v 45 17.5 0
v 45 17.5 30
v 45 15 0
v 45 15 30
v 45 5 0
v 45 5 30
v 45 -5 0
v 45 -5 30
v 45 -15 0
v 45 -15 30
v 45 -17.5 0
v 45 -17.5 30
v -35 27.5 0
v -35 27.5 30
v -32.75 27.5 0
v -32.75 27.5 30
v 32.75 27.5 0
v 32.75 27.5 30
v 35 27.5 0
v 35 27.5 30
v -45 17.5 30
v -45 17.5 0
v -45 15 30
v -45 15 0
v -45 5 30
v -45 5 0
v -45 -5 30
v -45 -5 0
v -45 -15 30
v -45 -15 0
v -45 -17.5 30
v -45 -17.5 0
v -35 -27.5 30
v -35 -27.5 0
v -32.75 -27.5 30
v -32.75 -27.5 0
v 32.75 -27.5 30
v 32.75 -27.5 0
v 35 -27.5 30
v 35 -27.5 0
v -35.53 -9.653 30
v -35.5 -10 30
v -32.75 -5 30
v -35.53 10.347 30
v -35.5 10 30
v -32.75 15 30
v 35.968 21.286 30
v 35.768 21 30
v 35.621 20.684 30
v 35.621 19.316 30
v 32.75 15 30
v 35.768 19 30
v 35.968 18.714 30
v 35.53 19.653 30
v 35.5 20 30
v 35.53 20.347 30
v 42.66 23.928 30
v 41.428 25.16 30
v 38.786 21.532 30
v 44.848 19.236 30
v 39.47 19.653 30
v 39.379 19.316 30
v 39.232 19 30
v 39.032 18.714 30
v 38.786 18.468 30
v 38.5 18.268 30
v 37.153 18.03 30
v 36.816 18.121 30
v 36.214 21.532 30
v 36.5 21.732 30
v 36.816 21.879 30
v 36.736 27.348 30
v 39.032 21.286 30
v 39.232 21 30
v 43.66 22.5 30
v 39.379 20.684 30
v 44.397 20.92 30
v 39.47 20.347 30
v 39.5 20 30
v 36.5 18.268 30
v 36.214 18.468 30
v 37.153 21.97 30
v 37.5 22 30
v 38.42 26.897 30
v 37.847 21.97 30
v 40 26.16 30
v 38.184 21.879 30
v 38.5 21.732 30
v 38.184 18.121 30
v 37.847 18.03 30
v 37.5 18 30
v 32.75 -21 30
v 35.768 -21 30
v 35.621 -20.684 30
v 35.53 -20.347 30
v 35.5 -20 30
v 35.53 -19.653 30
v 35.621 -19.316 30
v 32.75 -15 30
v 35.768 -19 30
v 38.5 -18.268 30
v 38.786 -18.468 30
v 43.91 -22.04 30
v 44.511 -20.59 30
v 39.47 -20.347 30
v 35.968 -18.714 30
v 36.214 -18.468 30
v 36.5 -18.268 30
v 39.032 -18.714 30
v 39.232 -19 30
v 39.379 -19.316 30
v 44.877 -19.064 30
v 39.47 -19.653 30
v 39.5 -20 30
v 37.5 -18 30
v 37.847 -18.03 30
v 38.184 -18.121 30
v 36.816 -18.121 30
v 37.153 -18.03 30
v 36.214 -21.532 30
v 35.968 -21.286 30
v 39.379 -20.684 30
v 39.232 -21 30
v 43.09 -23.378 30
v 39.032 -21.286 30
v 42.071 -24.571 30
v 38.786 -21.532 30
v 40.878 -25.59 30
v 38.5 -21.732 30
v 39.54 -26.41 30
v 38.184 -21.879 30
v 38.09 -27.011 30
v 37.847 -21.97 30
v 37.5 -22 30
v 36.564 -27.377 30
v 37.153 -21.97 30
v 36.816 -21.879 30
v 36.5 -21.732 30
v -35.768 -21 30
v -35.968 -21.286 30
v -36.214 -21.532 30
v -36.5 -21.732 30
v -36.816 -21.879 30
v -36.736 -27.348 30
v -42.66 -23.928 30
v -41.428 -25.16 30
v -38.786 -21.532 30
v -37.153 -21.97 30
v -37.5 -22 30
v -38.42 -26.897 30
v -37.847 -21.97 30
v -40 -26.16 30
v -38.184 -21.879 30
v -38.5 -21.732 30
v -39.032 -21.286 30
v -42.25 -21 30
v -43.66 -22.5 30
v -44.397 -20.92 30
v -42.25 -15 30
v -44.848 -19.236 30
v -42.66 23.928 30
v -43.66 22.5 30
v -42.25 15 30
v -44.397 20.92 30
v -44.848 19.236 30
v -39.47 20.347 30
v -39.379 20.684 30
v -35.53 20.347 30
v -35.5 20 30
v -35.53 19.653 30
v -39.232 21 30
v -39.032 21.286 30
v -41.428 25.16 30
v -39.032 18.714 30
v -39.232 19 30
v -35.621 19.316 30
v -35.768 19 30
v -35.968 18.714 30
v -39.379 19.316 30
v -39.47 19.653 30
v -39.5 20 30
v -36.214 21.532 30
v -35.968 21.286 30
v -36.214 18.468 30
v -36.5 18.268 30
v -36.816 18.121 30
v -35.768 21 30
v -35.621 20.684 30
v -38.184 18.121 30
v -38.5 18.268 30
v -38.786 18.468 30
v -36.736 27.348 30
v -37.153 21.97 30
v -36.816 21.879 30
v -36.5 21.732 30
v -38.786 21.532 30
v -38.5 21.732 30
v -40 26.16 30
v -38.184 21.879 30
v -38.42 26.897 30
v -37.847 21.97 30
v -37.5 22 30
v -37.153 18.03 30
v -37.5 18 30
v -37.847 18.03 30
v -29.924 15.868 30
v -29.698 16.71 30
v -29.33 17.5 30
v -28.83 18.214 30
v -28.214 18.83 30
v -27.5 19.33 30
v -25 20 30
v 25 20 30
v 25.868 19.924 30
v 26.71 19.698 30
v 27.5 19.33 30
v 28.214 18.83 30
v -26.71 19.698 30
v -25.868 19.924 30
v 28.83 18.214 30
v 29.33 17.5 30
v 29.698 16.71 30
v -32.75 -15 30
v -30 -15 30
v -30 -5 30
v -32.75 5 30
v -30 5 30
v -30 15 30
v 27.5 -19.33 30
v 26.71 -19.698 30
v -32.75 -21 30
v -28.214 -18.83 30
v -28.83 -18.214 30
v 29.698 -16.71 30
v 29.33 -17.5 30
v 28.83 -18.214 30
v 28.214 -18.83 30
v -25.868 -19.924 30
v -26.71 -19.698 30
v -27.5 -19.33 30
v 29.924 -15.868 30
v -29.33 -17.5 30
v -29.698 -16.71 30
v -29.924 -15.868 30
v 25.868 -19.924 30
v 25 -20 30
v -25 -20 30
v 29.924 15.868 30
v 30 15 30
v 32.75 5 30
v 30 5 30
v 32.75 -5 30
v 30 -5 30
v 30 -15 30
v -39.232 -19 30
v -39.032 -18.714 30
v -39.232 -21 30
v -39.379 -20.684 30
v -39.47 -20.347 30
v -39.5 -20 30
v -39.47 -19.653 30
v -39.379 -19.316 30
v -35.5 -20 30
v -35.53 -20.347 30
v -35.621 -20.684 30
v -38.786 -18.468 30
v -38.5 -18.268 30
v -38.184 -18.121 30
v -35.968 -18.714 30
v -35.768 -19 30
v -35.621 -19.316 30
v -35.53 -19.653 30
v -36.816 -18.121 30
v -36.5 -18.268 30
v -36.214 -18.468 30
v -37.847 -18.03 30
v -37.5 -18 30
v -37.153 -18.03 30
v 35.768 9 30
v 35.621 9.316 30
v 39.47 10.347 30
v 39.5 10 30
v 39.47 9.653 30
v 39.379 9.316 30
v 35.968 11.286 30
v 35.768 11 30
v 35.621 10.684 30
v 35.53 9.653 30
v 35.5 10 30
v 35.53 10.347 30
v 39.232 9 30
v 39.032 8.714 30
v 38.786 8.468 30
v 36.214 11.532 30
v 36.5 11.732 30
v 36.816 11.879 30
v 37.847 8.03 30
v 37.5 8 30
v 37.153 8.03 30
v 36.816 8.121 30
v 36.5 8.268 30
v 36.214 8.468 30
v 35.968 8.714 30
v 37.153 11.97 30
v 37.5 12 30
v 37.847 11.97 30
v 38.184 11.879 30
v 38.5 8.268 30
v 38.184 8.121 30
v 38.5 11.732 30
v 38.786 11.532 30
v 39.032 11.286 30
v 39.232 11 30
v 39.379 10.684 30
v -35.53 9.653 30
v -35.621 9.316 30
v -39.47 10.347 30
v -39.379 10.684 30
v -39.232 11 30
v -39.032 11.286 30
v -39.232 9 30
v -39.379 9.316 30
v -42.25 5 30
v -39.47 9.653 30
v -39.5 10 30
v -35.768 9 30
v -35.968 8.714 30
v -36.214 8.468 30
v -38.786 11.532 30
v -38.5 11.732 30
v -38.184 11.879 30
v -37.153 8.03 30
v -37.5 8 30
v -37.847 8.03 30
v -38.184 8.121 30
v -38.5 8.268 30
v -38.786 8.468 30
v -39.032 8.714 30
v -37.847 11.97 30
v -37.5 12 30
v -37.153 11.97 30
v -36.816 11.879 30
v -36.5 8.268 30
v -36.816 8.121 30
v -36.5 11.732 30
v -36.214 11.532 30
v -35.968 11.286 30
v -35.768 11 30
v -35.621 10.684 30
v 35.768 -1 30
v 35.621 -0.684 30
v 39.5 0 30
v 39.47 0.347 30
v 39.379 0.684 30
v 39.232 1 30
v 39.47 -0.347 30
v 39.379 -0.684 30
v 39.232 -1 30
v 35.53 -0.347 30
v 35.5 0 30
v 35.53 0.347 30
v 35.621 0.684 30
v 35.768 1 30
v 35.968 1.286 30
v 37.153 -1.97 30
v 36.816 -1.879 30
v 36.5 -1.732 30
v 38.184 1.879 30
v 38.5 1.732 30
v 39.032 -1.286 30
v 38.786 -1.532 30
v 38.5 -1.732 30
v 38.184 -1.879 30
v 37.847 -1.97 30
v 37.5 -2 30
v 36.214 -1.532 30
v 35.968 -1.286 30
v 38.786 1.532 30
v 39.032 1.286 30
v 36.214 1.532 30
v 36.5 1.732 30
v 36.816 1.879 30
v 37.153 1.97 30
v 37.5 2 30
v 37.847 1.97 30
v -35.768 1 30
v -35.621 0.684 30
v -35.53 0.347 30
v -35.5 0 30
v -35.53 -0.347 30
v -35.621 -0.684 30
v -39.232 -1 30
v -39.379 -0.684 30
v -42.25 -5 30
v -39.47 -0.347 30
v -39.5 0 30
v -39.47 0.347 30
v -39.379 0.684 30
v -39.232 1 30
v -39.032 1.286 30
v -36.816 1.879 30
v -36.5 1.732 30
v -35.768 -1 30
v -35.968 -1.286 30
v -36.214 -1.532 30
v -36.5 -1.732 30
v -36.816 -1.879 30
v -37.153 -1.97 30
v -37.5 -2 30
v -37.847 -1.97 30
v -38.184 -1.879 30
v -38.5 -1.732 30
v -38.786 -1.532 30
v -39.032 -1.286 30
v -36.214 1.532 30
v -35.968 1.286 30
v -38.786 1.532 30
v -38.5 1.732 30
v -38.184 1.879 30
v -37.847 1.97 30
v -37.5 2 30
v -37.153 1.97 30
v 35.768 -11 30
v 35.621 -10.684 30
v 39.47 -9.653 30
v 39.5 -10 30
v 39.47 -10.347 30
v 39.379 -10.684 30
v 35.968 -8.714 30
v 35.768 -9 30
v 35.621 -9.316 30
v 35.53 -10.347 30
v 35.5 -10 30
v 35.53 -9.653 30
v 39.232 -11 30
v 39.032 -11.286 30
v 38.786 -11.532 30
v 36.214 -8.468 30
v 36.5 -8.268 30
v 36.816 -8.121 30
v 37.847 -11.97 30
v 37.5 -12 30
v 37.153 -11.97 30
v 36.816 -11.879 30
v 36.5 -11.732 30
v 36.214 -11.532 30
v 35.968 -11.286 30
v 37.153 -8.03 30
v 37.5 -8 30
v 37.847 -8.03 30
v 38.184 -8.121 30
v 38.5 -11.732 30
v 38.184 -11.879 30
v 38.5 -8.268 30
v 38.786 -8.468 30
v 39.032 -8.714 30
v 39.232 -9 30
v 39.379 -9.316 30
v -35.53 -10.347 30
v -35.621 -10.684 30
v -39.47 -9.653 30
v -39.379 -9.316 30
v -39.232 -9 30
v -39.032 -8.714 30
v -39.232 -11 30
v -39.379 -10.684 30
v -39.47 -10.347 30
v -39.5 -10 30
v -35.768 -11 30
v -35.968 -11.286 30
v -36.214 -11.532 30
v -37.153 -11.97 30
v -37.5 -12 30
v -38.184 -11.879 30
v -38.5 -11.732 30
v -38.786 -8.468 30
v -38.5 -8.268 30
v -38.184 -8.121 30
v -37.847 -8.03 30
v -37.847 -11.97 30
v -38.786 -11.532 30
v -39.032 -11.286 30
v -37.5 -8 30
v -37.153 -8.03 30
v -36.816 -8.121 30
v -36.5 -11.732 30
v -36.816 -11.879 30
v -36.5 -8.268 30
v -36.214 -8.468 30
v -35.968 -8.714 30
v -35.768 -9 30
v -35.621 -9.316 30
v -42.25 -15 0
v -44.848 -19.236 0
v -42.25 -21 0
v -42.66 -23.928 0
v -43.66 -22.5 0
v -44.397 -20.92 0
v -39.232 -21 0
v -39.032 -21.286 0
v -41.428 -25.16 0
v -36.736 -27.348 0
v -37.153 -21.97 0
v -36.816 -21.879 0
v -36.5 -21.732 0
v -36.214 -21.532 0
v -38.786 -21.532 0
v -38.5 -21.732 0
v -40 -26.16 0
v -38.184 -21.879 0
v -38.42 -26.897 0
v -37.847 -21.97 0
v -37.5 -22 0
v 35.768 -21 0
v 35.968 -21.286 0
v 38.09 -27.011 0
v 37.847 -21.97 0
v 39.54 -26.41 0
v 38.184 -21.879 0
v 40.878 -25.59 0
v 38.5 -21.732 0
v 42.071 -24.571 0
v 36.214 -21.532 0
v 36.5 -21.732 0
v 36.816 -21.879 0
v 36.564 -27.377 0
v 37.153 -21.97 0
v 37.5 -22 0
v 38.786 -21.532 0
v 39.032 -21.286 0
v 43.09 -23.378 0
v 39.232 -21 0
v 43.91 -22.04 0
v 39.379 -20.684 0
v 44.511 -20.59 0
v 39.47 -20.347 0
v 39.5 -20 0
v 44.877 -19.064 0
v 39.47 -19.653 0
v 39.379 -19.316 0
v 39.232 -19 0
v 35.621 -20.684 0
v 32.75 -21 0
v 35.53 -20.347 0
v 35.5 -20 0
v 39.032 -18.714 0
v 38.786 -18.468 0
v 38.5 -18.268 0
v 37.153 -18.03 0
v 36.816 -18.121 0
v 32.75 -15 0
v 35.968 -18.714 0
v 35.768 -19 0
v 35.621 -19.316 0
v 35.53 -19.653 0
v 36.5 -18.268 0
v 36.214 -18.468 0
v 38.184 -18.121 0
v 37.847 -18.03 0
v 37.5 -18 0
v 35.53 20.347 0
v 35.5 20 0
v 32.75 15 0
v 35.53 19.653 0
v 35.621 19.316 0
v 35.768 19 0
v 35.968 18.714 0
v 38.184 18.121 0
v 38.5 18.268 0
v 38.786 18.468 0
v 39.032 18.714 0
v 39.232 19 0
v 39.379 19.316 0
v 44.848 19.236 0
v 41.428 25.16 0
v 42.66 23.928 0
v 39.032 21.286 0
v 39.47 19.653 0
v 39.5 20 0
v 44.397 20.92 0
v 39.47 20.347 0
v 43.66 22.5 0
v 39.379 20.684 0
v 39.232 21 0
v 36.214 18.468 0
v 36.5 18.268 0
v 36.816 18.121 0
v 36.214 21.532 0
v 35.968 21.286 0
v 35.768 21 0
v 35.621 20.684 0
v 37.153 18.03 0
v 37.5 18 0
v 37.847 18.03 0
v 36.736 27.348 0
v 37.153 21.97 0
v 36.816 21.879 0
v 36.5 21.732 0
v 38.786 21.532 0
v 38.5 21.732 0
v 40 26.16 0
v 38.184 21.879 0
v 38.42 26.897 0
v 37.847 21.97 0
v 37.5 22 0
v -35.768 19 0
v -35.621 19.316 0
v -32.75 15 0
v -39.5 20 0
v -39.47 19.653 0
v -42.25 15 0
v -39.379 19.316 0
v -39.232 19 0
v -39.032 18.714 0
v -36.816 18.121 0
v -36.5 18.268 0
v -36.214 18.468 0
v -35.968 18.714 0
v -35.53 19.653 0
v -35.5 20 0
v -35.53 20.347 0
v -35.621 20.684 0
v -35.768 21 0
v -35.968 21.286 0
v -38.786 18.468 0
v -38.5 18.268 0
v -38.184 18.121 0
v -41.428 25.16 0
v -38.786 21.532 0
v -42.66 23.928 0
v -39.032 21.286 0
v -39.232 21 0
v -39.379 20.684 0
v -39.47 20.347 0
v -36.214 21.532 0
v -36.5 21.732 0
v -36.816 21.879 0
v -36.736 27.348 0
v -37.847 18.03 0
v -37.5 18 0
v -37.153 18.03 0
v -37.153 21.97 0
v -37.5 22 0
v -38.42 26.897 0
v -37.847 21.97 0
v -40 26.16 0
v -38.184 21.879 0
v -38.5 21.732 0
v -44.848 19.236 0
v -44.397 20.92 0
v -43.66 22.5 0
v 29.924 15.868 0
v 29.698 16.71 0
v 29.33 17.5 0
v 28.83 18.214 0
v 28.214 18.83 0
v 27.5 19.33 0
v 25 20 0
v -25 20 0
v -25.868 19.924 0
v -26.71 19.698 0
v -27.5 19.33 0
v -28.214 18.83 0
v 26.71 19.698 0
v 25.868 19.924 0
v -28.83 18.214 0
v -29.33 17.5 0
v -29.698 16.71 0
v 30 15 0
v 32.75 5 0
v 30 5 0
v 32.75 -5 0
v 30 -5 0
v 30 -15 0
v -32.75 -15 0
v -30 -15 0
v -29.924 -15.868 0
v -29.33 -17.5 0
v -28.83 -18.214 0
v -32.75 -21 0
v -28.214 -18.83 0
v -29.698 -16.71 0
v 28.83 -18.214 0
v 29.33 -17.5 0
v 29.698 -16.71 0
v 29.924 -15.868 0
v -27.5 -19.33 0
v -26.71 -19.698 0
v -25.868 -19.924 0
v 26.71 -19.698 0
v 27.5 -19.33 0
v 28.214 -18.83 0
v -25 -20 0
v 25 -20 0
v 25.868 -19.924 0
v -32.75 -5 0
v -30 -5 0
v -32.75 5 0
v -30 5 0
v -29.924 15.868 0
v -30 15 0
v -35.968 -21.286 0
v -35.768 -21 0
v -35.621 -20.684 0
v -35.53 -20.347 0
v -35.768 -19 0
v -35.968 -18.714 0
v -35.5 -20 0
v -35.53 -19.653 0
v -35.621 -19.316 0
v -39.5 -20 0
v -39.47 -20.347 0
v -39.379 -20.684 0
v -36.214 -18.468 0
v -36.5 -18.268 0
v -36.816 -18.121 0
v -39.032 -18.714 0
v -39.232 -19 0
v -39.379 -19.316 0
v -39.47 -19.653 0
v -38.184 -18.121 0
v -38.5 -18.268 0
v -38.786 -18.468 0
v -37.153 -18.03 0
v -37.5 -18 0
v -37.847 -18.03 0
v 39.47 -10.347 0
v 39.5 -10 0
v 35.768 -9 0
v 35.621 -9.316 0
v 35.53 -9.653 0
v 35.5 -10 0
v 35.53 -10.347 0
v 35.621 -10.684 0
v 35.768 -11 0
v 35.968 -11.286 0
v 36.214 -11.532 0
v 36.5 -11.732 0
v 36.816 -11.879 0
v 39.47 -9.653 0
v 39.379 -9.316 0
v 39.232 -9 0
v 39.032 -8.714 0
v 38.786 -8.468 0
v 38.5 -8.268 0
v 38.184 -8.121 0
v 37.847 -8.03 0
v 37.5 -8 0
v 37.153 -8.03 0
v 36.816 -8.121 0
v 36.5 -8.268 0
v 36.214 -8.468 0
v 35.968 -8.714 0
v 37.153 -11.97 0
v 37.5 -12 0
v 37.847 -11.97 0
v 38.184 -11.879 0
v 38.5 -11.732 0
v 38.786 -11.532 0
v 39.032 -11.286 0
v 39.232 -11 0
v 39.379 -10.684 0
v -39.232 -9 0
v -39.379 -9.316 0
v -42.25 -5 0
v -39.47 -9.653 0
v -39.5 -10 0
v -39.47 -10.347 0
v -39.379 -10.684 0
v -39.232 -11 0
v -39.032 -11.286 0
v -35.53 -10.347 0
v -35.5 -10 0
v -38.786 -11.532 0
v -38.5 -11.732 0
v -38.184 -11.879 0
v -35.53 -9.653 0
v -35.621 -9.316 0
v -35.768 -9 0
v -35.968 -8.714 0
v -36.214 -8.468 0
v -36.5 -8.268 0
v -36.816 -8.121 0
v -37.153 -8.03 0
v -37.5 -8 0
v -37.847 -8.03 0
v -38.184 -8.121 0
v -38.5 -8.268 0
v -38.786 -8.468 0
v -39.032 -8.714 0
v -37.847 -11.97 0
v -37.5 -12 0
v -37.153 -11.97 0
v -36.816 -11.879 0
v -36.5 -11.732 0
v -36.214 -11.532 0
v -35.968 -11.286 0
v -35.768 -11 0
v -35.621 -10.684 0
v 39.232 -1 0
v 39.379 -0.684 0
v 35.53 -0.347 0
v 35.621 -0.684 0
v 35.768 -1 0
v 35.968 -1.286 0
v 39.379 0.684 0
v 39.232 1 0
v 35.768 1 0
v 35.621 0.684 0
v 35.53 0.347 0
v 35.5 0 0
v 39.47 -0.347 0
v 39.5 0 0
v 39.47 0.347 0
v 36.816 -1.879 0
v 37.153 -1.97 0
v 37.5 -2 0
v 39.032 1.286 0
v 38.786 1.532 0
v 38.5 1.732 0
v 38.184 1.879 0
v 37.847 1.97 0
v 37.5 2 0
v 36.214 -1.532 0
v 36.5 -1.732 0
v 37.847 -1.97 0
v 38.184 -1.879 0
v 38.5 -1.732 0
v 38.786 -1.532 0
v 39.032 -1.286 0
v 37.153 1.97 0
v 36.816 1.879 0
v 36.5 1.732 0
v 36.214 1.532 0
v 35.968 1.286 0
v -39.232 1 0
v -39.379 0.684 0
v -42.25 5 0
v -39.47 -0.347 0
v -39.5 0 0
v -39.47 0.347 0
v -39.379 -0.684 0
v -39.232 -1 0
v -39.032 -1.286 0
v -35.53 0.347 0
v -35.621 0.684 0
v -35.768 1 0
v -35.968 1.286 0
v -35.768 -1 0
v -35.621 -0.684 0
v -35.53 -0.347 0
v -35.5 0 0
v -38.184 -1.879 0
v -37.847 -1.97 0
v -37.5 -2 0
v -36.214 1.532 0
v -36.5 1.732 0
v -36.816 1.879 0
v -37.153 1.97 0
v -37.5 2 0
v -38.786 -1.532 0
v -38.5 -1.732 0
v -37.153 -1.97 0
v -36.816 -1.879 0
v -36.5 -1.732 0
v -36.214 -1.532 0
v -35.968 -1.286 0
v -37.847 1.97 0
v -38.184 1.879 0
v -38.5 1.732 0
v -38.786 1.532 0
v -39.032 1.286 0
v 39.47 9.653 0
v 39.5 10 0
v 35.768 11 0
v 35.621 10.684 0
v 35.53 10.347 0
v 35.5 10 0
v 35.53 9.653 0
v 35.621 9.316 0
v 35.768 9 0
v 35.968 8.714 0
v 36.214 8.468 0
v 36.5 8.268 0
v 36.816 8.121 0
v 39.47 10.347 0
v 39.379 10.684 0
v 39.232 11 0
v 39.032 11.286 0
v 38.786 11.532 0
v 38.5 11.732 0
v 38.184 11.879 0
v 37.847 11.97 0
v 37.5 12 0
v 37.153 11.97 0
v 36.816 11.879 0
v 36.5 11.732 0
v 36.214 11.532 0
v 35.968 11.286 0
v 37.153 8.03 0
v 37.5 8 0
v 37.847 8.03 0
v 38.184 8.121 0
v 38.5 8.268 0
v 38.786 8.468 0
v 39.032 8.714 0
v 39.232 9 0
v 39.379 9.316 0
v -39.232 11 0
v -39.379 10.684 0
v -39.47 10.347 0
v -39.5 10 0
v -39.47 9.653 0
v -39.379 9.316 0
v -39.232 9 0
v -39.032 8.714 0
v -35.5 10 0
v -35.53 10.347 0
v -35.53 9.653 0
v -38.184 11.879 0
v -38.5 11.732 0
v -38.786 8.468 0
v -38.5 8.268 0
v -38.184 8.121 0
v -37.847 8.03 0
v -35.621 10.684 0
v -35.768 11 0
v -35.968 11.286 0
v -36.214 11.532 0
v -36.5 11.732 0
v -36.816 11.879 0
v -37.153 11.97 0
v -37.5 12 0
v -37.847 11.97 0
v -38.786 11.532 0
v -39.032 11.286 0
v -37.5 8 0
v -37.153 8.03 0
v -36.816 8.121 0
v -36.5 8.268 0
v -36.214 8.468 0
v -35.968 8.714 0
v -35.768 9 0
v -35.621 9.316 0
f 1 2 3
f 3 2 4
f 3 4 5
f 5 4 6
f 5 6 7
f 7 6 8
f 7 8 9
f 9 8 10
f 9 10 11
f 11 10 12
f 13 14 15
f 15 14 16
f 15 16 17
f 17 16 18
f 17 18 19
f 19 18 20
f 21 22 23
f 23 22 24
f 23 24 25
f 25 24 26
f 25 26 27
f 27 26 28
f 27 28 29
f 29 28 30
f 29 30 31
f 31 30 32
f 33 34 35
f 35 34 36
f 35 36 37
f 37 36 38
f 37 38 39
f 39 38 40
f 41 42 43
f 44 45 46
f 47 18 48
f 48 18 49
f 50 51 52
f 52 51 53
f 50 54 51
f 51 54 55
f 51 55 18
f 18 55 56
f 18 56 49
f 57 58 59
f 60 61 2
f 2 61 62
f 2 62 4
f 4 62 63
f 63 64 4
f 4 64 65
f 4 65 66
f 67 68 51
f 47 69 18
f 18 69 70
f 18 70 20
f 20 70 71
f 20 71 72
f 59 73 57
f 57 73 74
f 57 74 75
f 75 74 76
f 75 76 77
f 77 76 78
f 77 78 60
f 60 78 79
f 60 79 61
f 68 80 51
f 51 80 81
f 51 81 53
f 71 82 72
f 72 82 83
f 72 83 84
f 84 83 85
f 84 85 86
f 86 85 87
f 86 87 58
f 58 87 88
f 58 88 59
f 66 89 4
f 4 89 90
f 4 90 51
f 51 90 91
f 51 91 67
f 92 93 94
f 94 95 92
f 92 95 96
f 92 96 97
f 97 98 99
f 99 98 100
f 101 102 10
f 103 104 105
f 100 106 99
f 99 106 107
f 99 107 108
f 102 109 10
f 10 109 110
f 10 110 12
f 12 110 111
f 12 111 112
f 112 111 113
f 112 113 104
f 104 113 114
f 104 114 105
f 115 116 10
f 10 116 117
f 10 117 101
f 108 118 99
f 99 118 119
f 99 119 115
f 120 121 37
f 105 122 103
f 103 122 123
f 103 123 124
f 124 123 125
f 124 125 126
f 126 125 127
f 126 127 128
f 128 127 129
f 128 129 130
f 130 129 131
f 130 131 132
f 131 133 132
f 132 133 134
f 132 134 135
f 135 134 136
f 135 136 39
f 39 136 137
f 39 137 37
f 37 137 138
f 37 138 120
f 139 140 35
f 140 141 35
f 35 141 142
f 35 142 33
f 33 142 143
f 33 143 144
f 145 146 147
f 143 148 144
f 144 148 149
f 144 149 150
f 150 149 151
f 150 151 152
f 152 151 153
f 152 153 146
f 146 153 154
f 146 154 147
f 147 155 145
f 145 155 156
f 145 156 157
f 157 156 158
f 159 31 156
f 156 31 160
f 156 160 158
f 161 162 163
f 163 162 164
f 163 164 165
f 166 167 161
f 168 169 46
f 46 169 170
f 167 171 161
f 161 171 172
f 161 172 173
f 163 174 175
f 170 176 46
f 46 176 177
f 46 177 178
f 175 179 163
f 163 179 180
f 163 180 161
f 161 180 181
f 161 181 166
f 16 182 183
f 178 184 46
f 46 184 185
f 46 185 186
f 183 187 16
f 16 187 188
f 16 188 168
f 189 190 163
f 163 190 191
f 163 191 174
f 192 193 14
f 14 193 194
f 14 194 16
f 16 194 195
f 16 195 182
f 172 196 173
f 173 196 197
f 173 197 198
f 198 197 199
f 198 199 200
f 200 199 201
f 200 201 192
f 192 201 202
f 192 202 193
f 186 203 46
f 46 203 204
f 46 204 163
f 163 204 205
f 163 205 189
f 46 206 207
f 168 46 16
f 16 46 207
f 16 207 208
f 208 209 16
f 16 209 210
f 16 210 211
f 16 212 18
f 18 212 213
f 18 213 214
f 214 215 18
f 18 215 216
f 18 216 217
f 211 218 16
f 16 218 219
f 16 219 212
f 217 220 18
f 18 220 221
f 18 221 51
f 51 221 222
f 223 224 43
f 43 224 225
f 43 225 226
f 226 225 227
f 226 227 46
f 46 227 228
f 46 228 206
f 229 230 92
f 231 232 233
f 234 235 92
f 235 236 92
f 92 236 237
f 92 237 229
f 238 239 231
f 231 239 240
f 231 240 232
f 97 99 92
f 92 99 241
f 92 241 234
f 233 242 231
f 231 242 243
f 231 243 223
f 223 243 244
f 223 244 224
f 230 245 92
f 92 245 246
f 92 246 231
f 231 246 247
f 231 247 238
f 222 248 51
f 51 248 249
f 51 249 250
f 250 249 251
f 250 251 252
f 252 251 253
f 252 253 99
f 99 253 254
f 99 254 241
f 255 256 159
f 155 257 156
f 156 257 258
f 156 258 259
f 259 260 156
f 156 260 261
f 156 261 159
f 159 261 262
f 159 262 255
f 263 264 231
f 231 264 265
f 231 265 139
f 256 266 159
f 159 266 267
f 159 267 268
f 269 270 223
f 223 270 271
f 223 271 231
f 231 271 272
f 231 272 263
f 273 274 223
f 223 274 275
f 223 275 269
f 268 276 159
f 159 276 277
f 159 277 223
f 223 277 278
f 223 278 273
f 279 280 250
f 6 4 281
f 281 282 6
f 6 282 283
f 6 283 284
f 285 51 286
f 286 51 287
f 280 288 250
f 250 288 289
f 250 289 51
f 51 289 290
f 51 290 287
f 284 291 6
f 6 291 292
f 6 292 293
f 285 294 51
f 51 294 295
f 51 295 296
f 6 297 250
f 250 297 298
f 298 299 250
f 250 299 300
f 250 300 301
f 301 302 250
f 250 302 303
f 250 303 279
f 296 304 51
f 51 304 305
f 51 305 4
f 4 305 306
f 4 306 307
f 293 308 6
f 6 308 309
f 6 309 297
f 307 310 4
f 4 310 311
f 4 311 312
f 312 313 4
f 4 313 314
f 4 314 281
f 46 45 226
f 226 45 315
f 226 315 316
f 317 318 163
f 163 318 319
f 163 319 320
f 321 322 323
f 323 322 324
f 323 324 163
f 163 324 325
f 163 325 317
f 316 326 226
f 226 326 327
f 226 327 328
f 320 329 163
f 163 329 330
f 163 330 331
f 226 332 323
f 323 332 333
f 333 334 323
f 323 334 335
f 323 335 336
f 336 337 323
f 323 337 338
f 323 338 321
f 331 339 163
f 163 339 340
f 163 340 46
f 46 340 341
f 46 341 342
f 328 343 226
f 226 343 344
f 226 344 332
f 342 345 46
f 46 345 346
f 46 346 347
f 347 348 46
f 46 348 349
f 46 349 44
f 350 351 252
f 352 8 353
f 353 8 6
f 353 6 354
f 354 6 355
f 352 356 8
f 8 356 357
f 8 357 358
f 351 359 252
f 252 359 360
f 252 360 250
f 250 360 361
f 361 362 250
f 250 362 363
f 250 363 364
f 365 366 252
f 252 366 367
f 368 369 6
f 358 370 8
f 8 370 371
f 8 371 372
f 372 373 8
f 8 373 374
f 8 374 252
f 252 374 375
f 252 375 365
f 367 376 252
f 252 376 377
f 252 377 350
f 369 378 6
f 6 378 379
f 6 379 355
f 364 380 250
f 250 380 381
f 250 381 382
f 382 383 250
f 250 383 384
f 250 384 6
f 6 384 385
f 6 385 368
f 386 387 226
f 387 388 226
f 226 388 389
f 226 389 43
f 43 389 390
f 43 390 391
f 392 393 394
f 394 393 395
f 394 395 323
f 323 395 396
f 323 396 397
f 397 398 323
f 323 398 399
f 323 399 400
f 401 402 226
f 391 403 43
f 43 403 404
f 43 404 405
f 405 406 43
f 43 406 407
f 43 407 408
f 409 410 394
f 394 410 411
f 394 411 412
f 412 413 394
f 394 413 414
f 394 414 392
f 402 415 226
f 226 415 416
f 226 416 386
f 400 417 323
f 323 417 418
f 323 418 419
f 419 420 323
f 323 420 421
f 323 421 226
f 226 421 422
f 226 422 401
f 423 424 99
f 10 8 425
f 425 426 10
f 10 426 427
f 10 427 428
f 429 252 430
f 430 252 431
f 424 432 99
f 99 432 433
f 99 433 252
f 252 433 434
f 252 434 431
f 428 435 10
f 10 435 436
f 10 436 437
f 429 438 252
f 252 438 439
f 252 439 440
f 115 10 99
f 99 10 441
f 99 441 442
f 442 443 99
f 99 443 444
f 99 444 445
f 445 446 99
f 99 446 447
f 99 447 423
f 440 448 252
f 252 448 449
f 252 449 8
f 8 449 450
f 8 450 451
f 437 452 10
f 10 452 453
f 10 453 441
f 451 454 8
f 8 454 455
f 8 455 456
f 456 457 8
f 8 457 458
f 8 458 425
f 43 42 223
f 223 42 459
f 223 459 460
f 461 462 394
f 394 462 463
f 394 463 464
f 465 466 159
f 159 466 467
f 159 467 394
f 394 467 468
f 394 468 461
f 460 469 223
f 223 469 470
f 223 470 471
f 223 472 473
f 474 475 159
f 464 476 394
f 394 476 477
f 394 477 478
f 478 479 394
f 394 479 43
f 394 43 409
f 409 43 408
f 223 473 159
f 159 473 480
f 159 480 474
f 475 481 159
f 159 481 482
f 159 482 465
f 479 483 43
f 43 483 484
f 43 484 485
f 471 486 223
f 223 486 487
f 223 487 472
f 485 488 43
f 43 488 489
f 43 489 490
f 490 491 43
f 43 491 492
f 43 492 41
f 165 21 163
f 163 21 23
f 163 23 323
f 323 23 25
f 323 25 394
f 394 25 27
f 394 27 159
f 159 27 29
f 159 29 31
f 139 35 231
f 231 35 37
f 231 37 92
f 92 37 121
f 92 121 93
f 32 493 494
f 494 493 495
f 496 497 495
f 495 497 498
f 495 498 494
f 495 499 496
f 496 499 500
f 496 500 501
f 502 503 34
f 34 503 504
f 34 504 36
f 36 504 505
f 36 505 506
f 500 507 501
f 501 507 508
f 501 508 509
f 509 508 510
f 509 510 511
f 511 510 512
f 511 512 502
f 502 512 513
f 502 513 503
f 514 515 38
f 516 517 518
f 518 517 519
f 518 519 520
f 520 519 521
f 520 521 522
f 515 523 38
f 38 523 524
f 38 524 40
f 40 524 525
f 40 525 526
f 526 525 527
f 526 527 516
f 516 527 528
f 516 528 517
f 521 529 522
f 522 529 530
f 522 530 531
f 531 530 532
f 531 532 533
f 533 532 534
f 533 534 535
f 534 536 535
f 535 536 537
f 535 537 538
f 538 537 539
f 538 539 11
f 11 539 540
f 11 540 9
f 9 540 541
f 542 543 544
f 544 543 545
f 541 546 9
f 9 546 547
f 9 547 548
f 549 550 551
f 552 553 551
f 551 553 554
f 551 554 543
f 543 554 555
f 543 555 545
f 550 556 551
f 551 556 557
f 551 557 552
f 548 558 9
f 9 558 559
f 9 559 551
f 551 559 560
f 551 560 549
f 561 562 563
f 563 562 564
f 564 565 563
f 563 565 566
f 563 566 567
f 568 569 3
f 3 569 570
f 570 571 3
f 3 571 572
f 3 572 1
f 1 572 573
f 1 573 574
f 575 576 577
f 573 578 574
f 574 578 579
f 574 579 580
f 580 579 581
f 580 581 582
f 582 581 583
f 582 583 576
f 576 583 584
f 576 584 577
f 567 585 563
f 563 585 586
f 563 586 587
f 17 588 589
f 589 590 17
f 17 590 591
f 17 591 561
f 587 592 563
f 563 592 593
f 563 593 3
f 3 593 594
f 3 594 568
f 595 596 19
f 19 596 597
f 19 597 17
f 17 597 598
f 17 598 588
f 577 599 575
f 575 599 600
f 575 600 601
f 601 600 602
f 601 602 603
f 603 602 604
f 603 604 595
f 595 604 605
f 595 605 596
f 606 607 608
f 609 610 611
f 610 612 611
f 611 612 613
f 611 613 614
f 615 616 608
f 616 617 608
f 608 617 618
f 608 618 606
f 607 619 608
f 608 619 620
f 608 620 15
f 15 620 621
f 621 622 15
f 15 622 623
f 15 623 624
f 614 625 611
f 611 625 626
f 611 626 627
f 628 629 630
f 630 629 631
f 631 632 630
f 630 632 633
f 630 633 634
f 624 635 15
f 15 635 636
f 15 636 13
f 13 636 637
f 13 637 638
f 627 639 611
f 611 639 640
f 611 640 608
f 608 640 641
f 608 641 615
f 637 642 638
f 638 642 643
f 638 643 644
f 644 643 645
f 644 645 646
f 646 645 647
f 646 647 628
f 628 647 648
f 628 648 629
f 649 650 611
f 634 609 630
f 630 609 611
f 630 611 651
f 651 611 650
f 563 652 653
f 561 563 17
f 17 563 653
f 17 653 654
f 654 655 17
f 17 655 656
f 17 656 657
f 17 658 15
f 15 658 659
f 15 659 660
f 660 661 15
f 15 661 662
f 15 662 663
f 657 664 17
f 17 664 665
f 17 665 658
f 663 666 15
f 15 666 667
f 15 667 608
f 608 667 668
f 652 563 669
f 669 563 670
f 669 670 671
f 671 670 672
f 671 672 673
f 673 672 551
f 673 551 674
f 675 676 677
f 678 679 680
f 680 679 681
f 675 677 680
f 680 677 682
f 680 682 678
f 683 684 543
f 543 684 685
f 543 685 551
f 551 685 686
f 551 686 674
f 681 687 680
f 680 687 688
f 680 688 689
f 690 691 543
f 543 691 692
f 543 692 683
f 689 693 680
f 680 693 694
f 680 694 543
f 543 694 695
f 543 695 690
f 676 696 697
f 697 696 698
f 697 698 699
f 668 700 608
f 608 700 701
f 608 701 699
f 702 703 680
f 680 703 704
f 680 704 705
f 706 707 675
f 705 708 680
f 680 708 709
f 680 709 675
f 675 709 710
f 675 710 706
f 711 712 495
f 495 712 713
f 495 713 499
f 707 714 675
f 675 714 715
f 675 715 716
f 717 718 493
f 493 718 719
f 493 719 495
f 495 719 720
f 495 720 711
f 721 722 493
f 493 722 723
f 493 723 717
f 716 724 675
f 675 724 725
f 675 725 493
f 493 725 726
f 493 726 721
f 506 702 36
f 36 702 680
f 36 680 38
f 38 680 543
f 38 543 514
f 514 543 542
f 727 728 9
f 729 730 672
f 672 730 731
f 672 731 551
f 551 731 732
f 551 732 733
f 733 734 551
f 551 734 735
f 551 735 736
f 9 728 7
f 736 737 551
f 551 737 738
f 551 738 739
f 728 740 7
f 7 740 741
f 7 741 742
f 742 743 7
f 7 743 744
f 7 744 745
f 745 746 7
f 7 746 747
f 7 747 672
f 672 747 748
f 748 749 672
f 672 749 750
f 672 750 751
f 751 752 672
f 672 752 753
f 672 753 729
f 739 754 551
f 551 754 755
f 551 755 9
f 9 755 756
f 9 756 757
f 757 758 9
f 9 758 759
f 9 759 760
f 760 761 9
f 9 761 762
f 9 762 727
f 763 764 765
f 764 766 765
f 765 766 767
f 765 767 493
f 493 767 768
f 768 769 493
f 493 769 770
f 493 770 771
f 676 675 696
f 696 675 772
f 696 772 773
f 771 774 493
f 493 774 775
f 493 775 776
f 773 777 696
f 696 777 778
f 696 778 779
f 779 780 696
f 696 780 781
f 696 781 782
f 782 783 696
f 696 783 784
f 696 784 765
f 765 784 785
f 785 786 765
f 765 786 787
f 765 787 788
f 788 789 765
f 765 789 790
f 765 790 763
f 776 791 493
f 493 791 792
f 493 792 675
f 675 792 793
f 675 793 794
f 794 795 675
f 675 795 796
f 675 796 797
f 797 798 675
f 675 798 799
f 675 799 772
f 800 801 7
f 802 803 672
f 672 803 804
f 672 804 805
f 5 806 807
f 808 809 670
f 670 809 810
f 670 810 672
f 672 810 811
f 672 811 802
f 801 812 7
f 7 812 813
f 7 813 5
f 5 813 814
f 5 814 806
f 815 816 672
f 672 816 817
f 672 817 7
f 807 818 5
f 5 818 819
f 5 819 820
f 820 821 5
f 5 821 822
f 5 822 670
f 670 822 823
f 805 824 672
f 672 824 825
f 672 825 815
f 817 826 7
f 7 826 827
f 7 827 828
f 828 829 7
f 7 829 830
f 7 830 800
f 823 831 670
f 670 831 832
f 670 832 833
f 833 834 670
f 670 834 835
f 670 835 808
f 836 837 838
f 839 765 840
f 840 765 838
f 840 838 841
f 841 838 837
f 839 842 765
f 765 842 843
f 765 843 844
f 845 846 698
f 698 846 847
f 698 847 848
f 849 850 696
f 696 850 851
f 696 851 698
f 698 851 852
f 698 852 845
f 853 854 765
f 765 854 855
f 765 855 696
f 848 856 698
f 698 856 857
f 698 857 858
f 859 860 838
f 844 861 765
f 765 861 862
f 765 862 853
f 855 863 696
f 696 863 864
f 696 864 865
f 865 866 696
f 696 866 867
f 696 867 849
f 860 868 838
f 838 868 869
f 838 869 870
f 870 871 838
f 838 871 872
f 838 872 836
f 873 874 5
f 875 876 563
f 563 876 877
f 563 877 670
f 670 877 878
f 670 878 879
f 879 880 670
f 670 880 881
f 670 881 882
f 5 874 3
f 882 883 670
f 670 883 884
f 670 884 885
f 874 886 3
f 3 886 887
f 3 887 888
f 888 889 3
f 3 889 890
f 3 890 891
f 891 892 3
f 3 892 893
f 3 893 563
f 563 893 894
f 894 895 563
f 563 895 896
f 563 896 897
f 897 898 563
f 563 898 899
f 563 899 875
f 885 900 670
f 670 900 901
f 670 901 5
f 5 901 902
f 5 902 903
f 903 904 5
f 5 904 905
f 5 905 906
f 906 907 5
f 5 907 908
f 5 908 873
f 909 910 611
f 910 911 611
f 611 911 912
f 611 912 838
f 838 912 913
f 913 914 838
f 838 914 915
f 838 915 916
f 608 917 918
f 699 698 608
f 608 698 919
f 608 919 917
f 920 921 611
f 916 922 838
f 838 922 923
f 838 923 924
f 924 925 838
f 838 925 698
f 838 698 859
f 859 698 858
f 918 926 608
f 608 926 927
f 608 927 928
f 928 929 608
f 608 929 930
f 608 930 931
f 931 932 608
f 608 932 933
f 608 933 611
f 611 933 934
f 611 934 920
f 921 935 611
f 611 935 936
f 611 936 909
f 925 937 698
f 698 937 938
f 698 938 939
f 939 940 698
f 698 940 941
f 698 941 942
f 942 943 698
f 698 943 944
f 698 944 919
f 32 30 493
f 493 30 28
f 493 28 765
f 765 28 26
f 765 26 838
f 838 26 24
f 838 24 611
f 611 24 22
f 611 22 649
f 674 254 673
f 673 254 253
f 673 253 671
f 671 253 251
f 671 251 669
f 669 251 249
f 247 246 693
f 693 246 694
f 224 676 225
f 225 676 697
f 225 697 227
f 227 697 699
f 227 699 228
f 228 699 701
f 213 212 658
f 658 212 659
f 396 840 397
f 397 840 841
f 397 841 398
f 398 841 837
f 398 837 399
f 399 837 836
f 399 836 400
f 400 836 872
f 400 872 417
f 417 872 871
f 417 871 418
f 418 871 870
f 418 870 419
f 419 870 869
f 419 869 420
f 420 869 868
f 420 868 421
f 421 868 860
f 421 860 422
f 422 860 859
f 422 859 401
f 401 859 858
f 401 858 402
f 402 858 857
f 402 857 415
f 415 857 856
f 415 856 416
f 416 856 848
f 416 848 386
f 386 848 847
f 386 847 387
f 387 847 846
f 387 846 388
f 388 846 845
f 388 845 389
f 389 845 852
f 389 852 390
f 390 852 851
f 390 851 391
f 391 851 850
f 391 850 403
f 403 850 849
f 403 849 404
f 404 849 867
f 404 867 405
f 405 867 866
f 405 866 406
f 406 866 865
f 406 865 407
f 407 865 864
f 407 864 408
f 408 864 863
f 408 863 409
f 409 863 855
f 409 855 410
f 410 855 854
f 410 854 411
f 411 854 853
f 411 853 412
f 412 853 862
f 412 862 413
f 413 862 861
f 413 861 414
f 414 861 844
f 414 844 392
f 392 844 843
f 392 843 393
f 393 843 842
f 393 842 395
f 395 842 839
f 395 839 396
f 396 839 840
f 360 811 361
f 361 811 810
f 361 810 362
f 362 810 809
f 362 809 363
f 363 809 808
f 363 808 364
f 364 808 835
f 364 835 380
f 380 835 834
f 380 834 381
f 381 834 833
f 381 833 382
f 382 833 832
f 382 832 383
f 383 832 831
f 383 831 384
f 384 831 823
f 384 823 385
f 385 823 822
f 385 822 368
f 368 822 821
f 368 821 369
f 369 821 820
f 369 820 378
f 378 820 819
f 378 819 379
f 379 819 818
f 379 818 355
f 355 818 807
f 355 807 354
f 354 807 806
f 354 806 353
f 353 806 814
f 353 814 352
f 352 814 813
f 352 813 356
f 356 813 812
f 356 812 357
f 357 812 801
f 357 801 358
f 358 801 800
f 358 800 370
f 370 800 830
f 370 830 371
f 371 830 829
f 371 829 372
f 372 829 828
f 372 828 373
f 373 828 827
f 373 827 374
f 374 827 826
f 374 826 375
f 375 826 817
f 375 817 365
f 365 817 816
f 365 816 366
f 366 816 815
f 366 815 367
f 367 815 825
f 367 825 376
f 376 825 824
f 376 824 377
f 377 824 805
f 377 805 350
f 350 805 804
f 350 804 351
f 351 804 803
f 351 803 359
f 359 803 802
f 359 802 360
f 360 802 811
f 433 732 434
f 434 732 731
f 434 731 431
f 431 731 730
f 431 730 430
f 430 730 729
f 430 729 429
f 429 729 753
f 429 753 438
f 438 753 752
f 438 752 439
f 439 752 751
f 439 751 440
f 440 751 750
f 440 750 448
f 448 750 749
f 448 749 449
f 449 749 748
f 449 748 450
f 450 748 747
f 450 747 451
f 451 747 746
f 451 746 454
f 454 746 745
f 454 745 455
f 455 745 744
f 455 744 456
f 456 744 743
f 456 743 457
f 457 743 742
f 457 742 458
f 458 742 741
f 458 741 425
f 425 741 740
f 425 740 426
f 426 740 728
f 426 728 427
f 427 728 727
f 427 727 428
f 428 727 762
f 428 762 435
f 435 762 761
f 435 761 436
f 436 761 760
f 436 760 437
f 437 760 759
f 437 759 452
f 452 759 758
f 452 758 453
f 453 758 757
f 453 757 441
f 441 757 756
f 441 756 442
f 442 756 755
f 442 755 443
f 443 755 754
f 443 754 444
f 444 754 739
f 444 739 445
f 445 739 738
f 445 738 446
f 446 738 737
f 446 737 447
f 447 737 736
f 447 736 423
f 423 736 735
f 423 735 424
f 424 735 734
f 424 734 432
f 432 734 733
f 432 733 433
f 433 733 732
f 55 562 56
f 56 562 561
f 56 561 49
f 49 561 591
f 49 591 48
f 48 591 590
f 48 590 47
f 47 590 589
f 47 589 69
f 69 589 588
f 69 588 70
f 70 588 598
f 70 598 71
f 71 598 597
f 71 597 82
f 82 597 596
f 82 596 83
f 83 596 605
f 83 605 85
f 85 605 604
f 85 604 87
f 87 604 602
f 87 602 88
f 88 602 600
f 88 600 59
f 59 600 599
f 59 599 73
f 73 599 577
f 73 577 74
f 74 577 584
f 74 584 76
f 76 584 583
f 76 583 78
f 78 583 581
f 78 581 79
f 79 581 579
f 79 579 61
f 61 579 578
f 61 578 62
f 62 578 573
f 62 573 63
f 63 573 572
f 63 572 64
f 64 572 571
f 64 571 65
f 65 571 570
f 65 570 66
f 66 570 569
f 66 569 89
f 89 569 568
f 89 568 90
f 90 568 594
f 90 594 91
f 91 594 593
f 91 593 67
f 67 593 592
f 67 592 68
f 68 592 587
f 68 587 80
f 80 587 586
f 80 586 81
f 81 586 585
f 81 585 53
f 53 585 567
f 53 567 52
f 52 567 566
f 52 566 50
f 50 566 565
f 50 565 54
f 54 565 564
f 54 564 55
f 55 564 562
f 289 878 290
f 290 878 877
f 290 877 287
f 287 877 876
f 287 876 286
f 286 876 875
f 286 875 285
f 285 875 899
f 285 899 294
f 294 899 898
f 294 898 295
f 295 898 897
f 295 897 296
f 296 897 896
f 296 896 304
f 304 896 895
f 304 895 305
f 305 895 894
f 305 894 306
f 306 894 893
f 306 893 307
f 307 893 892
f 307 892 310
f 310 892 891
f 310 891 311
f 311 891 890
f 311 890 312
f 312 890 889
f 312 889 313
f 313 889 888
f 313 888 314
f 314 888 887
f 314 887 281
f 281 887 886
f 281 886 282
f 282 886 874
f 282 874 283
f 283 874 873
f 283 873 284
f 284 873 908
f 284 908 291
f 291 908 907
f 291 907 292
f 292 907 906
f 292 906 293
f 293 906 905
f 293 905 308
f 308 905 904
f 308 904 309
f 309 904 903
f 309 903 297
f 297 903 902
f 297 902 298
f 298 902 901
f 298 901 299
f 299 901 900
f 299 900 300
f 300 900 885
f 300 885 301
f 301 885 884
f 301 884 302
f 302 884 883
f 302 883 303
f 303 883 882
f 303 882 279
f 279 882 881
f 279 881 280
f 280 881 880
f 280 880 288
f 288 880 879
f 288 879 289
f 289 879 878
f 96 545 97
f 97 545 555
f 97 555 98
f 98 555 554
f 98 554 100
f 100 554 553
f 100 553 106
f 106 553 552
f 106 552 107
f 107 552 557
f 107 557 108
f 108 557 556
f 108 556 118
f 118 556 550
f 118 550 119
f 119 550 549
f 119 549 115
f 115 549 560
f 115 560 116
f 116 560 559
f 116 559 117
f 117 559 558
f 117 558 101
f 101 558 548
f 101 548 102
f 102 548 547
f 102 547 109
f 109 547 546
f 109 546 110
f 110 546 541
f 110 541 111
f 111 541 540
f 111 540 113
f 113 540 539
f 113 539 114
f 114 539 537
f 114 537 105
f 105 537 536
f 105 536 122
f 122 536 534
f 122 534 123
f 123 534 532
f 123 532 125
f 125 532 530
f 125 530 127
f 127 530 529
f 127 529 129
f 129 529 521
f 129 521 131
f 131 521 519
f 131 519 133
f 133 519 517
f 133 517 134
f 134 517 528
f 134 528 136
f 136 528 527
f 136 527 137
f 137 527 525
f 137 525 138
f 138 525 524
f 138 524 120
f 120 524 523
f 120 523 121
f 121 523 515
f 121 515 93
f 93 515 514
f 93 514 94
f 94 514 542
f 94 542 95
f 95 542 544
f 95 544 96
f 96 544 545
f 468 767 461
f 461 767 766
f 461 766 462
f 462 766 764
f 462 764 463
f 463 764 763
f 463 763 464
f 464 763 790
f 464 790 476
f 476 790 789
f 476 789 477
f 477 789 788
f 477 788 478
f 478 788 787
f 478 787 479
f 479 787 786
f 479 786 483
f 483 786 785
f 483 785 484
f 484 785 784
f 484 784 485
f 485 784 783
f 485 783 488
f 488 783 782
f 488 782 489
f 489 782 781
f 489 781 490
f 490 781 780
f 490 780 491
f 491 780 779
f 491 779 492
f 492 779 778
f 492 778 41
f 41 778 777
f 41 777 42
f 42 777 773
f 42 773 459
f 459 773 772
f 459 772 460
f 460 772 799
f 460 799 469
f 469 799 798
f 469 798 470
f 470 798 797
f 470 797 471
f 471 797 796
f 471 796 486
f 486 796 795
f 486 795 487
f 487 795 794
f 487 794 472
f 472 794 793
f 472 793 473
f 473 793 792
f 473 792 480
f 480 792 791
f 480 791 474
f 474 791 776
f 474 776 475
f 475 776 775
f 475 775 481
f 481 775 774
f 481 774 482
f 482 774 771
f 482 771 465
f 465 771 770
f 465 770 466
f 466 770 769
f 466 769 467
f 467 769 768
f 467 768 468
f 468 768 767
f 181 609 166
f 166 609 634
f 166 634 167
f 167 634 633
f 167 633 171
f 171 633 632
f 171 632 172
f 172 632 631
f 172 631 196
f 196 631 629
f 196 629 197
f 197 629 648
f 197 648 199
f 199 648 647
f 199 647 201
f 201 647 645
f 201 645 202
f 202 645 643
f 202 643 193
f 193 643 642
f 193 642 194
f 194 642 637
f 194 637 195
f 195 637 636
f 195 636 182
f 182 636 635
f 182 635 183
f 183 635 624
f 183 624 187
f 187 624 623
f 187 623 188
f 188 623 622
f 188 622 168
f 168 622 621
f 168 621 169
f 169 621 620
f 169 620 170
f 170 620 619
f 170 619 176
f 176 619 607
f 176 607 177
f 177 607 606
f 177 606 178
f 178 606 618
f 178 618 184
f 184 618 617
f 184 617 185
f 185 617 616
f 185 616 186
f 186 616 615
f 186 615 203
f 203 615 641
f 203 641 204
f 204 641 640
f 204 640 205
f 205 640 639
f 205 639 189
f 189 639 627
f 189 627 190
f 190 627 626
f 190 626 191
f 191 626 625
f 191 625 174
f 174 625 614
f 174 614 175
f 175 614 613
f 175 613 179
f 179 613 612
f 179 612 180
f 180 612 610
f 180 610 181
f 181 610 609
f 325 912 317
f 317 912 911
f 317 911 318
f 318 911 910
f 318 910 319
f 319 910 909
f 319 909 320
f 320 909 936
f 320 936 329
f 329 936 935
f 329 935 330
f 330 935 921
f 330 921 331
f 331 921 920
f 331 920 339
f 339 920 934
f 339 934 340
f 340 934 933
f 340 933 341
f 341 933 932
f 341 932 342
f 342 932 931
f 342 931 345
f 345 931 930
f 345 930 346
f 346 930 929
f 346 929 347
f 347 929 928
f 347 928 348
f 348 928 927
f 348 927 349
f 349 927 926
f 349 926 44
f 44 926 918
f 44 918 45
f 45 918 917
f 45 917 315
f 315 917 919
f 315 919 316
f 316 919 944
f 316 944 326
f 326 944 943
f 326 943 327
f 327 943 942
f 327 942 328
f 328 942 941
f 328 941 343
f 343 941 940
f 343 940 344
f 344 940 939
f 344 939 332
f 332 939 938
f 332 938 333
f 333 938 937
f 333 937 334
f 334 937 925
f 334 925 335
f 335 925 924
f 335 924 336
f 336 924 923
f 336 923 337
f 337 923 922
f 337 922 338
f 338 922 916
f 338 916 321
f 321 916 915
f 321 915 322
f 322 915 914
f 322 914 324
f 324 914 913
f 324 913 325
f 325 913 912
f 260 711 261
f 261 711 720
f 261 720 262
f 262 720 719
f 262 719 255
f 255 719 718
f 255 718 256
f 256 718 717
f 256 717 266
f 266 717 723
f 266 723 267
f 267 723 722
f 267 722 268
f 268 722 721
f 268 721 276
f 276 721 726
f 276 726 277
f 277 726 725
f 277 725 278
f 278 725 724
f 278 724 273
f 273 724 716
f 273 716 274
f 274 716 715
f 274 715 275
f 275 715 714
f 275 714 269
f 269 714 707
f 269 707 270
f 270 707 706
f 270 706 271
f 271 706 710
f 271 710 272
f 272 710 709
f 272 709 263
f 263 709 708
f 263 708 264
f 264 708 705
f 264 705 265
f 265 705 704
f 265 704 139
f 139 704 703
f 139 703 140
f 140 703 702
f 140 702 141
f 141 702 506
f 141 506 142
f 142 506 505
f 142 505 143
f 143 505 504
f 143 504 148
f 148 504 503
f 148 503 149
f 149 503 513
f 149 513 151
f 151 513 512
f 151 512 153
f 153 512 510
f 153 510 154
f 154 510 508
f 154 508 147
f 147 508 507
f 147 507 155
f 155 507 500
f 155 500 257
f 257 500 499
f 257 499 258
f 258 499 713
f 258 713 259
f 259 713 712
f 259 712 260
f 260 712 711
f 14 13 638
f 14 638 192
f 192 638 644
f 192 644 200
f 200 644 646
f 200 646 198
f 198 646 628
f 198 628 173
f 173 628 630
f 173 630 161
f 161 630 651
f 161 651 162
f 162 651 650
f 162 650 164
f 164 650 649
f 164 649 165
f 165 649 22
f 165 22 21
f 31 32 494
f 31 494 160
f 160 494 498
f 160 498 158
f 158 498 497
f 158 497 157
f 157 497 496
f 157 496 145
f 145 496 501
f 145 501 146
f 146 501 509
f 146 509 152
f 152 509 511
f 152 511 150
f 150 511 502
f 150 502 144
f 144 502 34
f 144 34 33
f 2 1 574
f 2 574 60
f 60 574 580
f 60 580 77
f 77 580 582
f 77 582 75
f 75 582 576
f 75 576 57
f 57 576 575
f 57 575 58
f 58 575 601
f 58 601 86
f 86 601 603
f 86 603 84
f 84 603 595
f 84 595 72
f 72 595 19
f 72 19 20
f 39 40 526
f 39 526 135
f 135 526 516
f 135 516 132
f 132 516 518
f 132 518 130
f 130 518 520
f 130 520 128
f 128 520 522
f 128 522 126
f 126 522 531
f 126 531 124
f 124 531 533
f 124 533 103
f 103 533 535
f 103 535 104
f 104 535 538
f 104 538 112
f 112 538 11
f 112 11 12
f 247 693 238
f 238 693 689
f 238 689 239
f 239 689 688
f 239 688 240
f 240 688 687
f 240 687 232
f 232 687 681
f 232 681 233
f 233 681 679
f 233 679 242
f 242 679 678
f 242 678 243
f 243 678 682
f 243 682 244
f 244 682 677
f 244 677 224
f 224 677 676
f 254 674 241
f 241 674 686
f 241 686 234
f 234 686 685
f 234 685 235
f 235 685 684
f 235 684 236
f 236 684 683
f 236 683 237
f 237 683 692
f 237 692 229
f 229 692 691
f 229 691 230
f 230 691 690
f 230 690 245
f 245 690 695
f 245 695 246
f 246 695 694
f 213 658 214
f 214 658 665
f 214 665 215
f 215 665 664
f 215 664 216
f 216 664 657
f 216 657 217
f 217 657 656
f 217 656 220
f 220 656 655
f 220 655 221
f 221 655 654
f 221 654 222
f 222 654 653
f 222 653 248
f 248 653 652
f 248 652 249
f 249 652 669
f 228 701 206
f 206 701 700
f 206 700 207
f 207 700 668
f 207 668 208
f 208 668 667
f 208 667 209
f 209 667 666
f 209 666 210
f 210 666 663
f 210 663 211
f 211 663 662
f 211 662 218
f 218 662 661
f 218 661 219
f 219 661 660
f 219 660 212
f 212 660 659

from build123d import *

# Parameters (mm, degrees)
SKETCH1_W           = 90
SKETCH1_H           = 55
BOSS_EXTRUDE1_DEPTH = 30
SKETCH2_W           = 60
SKETCH2_H           = 40
CUT_EXTRUDE1_DEPTH  = 31
SKETCH3_R           = 2
CUT_EXTRUDE2_DEPTH  = 31
LPATTERN1_COUNT     = 3
LPATTERN1_PITCH     = 10
LPATTERN1_COL_COUNT = 3
LPATTERN1_COL_PITCH = 10
FILLET1_R           = 10
FILLET2_R           = 5


with BuildPart() as part:
    # Sketch1 → Boss-Extrude1 (new body)
    with BuildSketch(Plane.XY):
        Rectangle(SKETCH1_W, SKETCH1_H)
    extrude(amount=BOSS_EXTRUDE1_DEPTH)

    # Sketch2 → Cut-Extrude1 (cut, through all)
    with BuildSketch(Plane.XY.offset(30)):
        Rectangle(SKETCH2_W, SKETCH2_H)
    extrude(amount=-CUT_EXTRUDE1_DEPTH, mode=Mode.SUBTRACT)

    # Sketch3 → Cut-Extrude2 (cut, through all)
    with BuildSketch(Plane(origin=(0, 0, 0), x_dir=(-1, 0, 0), z_dir=(0, 0, -1))):
        with Locations((-37.5, 0)):
            Circle(SKETCH3_R)
        with Locations((37.5, 0)):
            Circle(SKETCH3_R)
    cut_extrude2 = extrude(amount=-CUT_EXTRUDE2_DEPTH, mode=Mode.SUBTRACT)

    # LPattern1: Cut-Extrude2 ×3
    with Locations(*[(0, -i * LPATTERN1_PITCH, 0) for i in range(1, LPATTERN1_COUNT)]):
        add(cut_extrude2, mode=Mode.SUBTRACT)

    # LPattern1 col: Cut-Extrude2 ×3
    with Locations(*[(0, i * LPATTERN1_COL_PITCH, 0) for i in range(1, LPATTERN1_COL_COUNT)]):
        add(cut_extrude2, mode=Mode.SUBTRACT)

    # Fillet1
    fillet1_edges = [part.edges().sort_by_distance(p)[0] for p in [
        (45, -27.5, 15),
        (-45, -27.5, 15),
        (-45, 27.5, 15),
        (45, 27.5, 15),
    ]]
    fillet(fillet1_edges, radius=FILLET1_R)

    # Fillet2
    fillet2_edges = [part.edges().sort_by_distance(p)[0] for p in [
        (30, 20, 15),
        (30, -20, 15),
        (-30, -20, 15),
        (-30, 20, 15),
    ]]
    fillet(fillet2_edges, radius=FILLET2_R)


solid = part.part
